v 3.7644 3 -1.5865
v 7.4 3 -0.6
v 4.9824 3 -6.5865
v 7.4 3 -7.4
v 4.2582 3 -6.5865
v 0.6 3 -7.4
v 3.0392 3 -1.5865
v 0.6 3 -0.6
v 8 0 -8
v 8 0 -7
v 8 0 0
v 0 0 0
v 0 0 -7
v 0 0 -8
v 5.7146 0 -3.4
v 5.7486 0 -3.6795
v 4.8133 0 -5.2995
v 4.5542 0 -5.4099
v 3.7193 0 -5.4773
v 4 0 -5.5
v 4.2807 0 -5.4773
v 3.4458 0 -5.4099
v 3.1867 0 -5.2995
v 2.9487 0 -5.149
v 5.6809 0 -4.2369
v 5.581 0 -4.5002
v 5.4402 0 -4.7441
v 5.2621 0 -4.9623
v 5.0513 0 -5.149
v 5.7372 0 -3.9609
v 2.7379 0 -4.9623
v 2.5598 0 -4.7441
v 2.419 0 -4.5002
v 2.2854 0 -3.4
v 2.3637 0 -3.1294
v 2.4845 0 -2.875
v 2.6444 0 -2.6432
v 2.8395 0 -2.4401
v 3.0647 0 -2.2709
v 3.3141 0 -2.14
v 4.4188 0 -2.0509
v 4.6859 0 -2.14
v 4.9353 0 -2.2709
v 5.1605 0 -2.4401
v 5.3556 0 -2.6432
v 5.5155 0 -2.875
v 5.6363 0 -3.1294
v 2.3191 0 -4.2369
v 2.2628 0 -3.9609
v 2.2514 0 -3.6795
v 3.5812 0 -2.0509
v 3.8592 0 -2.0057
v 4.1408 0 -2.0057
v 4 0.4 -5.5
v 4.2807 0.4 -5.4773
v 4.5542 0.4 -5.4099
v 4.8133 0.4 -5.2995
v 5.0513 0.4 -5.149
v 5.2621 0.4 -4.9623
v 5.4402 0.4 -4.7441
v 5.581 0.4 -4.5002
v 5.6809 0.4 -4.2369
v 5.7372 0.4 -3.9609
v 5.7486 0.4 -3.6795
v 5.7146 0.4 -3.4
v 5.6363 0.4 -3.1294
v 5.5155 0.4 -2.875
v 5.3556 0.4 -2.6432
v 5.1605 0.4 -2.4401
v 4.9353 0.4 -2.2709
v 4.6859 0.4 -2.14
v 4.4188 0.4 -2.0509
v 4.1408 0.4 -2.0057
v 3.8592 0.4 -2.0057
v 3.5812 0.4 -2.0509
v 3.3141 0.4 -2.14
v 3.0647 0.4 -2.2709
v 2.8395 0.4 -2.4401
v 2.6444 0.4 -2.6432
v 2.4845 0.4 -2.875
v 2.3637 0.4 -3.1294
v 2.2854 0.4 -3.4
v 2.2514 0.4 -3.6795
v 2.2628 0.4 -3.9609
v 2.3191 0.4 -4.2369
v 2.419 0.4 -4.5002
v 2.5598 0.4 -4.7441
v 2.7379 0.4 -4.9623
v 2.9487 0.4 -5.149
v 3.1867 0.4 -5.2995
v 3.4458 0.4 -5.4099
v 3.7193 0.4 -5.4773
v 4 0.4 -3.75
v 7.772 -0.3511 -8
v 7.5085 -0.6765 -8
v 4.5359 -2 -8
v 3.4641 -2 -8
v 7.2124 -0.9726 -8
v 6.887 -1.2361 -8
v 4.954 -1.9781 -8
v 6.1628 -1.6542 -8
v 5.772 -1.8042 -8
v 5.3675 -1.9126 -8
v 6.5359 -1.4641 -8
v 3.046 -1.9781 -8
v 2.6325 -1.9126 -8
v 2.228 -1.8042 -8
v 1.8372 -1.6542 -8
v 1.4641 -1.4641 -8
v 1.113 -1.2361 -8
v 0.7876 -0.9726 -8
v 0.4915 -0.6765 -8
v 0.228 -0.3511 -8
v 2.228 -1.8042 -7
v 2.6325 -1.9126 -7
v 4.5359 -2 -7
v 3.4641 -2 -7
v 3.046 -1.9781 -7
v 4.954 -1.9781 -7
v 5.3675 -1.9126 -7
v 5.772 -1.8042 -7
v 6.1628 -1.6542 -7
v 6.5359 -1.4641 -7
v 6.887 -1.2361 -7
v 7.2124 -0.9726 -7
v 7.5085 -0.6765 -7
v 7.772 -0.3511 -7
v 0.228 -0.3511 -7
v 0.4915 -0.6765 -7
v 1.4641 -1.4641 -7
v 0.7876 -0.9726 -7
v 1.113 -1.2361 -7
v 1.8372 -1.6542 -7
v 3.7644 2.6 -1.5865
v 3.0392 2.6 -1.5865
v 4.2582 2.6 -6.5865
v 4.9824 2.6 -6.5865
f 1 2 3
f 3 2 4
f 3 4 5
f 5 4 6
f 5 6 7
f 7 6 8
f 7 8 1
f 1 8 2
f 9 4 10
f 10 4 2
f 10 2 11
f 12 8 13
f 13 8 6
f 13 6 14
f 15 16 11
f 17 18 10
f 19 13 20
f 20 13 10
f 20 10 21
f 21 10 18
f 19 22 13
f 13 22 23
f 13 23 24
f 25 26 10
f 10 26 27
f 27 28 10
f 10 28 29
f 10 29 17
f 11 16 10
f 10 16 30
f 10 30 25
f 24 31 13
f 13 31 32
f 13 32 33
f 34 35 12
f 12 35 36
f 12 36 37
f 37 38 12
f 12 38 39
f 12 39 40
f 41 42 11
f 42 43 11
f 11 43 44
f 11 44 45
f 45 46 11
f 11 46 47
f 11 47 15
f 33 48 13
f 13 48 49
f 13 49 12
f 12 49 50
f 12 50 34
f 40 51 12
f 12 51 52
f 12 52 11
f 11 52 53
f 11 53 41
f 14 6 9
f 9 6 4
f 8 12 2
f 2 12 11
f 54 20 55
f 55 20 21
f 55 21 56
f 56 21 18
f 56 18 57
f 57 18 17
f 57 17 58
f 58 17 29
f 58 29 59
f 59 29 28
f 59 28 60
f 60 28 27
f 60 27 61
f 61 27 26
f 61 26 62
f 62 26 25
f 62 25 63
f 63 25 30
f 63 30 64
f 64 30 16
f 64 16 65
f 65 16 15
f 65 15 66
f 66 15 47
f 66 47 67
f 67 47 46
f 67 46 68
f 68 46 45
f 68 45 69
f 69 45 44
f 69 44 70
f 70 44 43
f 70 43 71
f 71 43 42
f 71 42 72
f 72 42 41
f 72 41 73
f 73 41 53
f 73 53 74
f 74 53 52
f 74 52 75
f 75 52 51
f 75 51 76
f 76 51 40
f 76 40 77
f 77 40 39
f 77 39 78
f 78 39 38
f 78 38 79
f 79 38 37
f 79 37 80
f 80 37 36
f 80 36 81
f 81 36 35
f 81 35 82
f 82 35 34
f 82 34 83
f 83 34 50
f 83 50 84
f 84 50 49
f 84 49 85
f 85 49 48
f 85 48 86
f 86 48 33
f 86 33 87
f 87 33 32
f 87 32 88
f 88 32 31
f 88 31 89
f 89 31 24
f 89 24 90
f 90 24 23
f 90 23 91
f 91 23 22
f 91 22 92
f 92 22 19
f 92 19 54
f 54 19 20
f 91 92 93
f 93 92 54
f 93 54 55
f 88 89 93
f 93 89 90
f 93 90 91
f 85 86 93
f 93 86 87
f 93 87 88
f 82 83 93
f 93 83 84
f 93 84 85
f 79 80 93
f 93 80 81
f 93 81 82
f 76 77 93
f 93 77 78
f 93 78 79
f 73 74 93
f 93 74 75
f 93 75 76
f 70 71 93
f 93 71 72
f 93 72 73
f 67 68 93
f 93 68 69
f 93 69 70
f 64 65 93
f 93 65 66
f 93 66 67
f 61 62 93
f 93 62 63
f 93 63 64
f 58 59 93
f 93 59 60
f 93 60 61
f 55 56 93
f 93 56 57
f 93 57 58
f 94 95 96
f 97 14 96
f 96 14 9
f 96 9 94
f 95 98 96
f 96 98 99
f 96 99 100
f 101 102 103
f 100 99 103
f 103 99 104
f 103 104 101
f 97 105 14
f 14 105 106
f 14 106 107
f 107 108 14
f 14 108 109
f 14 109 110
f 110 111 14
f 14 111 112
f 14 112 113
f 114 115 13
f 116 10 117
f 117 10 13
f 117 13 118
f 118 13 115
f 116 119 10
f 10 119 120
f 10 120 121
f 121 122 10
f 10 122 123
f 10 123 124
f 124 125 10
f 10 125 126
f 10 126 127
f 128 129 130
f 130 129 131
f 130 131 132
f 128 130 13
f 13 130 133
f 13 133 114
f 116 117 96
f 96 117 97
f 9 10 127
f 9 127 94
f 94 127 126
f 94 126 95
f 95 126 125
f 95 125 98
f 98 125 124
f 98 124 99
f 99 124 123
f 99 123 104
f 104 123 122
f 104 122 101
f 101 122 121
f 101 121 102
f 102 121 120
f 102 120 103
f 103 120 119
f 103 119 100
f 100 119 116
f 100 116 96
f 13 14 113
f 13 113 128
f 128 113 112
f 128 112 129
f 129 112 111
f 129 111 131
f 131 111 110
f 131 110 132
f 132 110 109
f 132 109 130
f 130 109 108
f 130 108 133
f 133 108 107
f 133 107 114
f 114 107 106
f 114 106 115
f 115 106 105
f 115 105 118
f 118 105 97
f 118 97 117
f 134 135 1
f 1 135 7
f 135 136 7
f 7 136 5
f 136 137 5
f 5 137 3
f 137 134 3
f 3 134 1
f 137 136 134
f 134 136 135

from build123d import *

# Parameters (mm, degrees)
SKETCH1_W               = 8
SKETCH1_H               = 8
BOSS_EXTRUDE1_DEPTH     = 3
CUT_EXTRUDE1_DEPTH      = 12.704699911
CUT_EXTRUDE1_DEPTH_BACK = 12.704699911
CUT_EXTRUDE2_DEPTH      = 11
SKETCH4_R               = 1.75
CUT_EXTRUDE3_DEPTH      = 0.4
SKETCH5_W               = 8
SKETCH5_H               = 1
BOSS_EXTRUDE2_DEPTH     = 2
FILLET1_R               = 4
CUT_EXTRUDE4_DEPTH      = 0.4


with BuildPart() as part:
    # Sketch1 → Boss-Extrude1 (new body)
    with BuildSketch(Plane(origin=(0, 0, 0), x_dir=(1, 0, 0), z_dir=(0, 1, 0))):
        with Locations((4, 4)):
            Rectangle(SKETCH1_W, SKETCH1_H)
    extrude(amount=BOSS_EXTRUDE1_DEPTH)

    # Sketch2 → Cut-Extrude1 (cut, two sides: drawn at the far end of the back side and taken through both)
    with BuildSketch(Plane.XY.offset(-CUT_EXTRUDE1_DEPTH_BACK)):
        Polygon((0, 0), (0.6, 3), (0, 3), align=None)
        Polygon((8, 0), (7.4, 3), (8, 3), align=None)
    extrude(amount=CUT_EXTRUDE1_DEPTH + CUT_EXTRUDE1_DEPTH_BACK, mode=Mode.SUBTRACT)

    # Sketch3 → Cut-Extrude2 (cut)
    with BuildSketch(Plane(origin=(0, 0, 0), x_dir=(0, 0, -1), z_dir=(1, 0, 0))):
        Polygon((0, 0), (0.6, 3), (0, 3), align=None)
        Polygon((8, 3), (7.4, 3), (8, 0), align=None)
    extrude(amount=CUT_EXTRUDE2_DEPTH, mode=Mode.SUBTRACT)

    # Sketch4 → Cut-Extrude3 (cut)
    with BuildSketch(Plane.XZ):
        with Locations(Location((4, -3.75, 0), (0, 0, 270))):
            Circle(SKETCH4_R)
    extrude(amount=-CUT_EXTRUDE3_DEPTH, mode=Mode.SUBTRACT)

    # Sketch5 → Boss-Extrude2 (add)
    with BuildSketch(Plane.XZ):
        with Locations((4, -7.5)):
            Rectangle(SKETCH5_W, SKETCH5_H)
    extrude(amount=BOSS_EXTRUDE2_DEPTH)

    # Fillet1
    # the kernel refuses this fillet: 4 mm, written as the material it takes off along each edge
    with BuildSketch(Plane(origin=(8, -2, -16.660254038), x_dir=(0, 1, 0), z_dir=(0, 0, 1)), Plane(origin=(0, -2, 1.660254038), x_dir=(0, 1, 0), z_dir=(0, 0, -1))) as fillet1_piece_1:
        with BuildLine():
            CenterArc((4, 3.464101615), FILLET1_R, 180, 60)
            Line((0, 3.464101615), (-0.08, 3.464101615))
            Line((-0.08, 3.464101615), (-0.08, 0))
            Line((-0.08, 0), (0, -0.08))
            ThreePointArc((0, -0.08), (1, -0.08), (1.96, -0.069282032))
            Line((1.96, -0.069282032), (2, 0))
        make_face()
    extrude(amount=18.320508076, mode=Mode.SUBTRACT)

    # Sketch6 → Cut-Extrude4 (cut)
    with BuildSketch(Plane(origin=(0, 3, 0), x_dir=(1, 0, 0), z_dir=(0, 1, 0))):
        Polygon((3.039241423, 1.586469201), (4.258191744, 6.586469201), (4.982350398, 6.586469201), (3.76440168, 1.586469201), align=None)
    extrude(amount=-CUT_EXTRUDE4_DEPTH, mode=Mode.SUBTRACT)


solid = part.part
